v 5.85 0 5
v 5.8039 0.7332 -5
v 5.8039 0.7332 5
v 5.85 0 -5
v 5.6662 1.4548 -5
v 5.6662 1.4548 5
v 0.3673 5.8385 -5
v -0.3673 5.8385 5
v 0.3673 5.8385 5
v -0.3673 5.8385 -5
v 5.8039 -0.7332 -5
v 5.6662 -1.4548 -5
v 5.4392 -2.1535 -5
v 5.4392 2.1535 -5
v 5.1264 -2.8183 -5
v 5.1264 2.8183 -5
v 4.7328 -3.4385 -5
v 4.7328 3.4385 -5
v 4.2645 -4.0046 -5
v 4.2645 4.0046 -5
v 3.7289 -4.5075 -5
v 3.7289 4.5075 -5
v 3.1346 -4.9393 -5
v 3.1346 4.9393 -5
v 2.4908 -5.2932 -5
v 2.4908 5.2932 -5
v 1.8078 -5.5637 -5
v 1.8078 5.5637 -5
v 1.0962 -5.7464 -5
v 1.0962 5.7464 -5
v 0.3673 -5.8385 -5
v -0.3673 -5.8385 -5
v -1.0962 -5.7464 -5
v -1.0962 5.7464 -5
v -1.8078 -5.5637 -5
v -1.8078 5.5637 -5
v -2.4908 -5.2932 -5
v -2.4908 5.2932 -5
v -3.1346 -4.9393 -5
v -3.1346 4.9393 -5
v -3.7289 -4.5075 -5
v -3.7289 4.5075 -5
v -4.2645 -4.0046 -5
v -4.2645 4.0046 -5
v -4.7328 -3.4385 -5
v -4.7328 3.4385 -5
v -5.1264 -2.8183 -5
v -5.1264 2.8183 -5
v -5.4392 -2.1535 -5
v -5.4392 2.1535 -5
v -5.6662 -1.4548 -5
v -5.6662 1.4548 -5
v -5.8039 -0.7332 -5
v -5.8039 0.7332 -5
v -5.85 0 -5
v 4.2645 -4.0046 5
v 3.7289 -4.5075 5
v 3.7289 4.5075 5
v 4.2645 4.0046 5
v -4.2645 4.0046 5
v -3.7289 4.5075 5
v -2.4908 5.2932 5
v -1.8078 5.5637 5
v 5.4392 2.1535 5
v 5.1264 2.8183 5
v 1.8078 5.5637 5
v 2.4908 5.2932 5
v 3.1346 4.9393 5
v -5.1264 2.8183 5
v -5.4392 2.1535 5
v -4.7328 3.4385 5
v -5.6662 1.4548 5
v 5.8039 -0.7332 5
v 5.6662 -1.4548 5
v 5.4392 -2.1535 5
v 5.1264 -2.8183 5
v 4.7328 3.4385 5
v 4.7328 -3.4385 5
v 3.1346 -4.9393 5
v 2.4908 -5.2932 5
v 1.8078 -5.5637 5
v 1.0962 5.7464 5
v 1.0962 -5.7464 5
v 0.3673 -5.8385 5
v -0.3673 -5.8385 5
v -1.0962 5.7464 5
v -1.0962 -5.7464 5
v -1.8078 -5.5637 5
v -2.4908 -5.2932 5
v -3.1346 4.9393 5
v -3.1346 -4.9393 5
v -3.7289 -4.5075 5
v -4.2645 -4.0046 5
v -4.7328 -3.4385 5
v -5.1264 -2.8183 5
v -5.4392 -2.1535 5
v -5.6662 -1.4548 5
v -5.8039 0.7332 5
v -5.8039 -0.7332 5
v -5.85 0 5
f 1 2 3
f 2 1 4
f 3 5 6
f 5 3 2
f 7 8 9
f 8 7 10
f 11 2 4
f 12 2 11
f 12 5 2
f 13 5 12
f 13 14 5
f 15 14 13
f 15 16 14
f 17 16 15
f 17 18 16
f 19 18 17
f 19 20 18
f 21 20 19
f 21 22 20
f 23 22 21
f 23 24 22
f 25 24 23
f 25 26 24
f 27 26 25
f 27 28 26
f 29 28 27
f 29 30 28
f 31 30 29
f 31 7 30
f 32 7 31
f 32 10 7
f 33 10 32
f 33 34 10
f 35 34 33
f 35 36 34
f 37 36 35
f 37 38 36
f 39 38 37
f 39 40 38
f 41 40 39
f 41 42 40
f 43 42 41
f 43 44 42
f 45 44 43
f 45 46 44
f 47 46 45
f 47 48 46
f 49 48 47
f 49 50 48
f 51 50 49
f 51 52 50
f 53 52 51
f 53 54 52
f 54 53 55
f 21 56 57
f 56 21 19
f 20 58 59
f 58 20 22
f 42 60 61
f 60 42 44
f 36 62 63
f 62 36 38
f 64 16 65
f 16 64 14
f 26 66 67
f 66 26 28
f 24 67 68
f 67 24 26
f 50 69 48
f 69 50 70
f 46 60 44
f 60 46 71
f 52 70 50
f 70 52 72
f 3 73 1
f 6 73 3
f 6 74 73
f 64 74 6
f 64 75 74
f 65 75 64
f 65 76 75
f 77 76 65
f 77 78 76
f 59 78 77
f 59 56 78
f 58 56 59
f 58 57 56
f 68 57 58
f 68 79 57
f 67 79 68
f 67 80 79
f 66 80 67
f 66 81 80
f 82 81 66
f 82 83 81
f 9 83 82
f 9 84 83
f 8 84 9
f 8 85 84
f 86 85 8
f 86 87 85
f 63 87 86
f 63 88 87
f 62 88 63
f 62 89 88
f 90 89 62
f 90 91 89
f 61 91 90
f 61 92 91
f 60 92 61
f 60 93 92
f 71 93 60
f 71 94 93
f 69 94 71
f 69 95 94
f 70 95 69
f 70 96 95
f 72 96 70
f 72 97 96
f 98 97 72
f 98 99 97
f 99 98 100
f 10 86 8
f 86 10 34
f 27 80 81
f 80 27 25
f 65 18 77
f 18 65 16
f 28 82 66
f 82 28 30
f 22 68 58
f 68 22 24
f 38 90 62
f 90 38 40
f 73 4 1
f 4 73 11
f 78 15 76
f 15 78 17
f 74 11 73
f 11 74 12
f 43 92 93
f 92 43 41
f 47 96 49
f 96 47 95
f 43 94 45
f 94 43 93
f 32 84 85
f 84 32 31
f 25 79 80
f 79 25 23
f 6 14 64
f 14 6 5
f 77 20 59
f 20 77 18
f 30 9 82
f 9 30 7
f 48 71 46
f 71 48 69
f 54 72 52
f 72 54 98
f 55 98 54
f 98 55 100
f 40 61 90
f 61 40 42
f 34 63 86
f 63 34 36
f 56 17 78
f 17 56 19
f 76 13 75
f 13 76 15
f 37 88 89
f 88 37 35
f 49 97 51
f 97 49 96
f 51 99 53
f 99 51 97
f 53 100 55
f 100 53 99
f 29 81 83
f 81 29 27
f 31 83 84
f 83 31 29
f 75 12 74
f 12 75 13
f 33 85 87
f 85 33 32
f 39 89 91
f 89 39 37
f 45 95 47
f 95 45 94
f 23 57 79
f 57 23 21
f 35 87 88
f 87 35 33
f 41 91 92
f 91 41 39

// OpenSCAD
$fn = 50;


difference() {
	union() {
		translate(v = [0, 0, -5.0000000000]) {
			cylinder(h = 10, r = 5.8500000000);
		}
	}
	union() {
		translate(v = [0, 0, -100.0000000000]) {
			cylinder(h = 200, r = 0);
		}
	}
}
